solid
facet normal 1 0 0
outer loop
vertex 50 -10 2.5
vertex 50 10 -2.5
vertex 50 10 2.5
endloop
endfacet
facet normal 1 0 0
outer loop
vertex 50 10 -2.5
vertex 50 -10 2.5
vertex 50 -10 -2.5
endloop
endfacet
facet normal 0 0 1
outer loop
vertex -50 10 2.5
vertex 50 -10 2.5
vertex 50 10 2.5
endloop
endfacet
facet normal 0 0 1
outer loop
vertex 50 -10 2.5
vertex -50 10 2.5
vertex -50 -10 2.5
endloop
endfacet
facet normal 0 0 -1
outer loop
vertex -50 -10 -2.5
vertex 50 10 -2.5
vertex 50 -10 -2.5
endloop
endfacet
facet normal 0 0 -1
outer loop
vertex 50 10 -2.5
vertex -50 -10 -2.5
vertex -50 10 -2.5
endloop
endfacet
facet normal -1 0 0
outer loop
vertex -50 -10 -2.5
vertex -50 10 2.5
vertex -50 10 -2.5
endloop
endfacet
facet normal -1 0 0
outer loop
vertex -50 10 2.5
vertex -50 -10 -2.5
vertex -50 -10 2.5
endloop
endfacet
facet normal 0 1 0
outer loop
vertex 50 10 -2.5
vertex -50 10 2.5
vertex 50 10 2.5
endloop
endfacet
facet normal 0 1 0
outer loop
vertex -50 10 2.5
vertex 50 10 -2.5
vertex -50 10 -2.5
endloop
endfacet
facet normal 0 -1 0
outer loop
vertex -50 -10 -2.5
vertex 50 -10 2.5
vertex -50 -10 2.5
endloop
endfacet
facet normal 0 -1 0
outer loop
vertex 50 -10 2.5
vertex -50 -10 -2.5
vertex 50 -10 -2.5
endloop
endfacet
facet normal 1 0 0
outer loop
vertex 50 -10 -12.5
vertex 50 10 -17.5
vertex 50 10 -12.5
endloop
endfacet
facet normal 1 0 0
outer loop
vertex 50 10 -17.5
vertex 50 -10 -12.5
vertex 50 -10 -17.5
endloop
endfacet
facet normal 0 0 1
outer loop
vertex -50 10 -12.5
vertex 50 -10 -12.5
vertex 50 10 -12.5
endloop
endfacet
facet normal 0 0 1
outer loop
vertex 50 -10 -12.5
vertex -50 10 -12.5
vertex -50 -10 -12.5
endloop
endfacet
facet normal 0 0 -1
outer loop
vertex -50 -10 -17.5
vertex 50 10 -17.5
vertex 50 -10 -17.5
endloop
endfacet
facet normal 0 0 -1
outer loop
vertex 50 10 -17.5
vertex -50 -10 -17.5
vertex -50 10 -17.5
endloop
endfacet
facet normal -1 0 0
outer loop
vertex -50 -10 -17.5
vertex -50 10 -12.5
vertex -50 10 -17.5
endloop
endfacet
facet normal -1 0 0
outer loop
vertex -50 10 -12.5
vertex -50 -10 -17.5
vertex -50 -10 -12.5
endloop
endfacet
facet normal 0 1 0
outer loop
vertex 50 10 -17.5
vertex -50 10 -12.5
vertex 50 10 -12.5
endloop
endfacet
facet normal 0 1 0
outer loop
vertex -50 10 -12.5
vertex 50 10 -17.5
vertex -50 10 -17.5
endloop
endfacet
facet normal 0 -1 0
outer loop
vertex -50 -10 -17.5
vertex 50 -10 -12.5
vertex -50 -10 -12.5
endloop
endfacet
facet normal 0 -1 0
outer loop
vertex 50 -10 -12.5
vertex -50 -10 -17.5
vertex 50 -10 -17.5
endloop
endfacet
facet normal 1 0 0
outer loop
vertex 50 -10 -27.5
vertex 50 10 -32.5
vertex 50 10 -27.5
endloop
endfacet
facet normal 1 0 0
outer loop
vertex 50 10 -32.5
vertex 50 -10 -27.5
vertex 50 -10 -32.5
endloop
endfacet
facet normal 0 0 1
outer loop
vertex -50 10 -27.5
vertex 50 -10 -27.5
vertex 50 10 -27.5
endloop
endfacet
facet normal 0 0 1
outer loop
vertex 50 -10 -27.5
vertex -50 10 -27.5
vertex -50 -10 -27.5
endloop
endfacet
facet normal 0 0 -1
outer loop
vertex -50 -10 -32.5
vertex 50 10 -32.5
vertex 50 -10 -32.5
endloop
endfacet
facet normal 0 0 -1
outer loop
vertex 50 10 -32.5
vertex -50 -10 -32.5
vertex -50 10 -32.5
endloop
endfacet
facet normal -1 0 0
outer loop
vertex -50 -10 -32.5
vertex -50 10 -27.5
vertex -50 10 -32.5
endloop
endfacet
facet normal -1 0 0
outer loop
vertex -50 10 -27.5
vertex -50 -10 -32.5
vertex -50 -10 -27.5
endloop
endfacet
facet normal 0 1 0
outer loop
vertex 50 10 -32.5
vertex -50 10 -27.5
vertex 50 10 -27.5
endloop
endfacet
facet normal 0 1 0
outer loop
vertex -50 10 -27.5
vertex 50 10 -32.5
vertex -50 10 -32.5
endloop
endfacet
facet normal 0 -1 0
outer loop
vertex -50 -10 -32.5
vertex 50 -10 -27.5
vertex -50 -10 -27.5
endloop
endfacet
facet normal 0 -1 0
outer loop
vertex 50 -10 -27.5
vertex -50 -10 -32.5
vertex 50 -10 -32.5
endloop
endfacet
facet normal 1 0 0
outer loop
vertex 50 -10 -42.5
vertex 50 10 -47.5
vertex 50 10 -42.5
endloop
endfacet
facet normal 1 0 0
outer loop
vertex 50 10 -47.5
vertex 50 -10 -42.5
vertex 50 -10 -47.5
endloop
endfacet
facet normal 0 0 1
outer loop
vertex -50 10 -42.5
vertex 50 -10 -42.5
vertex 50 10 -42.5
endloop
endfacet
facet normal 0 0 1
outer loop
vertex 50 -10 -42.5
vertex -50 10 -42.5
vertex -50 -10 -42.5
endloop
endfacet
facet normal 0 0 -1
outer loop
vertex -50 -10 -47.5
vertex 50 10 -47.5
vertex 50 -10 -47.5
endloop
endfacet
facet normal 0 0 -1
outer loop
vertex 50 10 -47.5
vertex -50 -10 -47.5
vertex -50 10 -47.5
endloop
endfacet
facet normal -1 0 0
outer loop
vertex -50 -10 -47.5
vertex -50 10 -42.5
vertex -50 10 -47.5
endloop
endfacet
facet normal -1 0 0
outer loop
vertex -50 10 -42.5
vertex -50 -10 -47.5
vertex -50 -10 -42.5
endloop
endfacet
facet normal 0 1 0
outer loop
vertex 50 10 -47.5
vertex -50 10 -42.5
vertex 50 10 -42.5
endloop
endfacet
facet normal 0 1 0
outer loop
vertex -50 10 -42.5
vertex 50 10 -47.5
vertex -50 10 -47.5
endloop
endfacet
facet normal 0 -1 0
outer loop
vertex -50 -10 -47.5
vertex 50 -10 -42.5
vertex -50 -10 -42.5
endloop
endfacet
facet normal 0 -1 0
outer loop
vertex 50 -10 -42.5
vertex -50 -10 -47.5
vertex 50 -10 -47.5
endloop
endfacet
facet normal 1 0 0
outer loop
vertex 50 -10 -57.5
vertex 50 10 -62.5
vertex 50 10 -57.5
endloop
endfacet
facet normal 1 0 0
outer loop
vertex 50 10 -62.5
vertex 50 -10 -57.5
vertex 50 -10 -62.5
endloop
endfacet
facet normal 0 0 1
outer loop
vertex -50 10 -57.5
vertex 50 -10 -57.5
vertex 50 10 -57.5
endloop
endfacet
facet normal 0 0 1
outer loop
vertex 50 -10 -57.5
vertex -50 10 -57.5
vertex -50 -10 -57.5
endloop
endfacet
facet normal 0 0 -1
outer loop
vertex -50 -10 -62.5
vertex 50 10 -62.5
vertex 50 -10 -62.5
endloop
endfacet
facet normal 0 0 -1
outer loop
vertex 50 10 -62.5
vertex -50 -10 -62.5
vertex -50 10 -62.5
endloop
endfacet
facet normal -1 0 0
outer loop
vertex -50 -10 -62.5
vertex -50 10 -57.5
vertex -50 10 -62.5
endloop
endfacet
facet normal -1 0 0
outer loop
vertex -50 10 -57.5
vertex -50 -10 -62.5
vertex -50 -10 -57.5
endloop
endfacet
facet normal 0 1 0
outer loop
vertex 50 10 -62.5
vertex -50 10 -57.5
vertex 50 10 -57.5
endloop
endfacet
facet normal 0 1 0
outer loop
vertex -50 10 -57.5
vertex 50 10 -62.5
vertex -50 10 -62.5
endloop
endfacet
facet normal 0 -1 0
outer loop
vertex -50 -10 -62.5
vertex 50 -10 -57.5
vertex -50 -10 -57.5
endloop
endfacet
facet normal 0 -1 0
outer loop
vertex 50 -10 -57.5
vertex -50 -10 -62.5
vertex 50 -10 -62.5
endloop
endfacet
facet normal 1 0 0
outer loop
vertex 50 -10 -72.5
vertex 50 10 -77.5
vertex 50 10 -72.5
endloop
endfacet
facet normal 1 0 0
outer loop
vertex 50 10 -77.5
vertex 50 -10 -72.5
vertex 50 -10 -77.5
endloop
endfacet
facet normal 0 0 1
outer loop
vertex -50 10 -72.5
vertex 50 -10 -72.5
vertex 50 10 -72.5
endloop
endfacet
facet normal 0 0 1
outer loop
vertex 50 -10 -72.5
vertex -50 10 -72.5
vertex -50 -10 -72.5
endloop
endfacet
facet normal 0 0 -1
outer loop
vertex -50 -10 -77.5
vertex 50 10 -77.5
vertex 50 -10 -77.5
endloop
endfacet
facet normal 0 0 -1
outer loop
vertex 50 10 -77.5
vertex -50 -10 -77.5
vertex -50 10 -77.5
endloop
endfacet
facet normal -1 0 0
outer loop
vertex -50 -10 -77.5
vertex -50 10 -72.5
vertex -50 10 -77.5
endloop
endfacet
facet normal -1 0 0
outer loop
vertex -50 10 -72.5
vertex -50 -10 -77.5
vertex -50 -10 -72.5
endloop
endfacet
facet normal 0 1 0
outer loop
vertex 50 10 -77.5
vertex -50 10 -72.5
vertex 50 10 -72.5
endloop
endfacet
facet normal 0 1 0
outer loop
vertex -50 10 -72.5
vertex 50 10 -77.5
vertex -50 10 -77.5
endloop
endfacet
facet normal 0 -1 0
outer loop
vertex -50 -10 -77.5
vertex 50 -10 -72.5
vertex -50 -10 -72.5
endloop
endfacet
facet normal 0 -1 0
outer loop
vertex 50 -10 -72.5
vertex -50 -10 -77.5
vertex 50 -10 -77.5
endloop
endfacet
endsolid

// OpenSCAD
// Define the dimensions of the rectangular plate
plate_length = 100;  // Length of the plate
plate_width = 20;    // Width of the plate
plate_thickness = 5; // Thickness of the plate
plate_spacing = 10;  // Spacing between each plate

// Function to create a rectangular plate
module rectangular_plate() {
    cube([plate_length, plate_width, plate_thickness], center = true);
}

// Assemble the layers of rectangular plates
module assembly() {
    for (i = [0:5]) {
        translate([0, 0, -i * (plate_thickness + plate_spacing)])
            rectangular_plate();
    }
}

// Render the assembly
assembly();
